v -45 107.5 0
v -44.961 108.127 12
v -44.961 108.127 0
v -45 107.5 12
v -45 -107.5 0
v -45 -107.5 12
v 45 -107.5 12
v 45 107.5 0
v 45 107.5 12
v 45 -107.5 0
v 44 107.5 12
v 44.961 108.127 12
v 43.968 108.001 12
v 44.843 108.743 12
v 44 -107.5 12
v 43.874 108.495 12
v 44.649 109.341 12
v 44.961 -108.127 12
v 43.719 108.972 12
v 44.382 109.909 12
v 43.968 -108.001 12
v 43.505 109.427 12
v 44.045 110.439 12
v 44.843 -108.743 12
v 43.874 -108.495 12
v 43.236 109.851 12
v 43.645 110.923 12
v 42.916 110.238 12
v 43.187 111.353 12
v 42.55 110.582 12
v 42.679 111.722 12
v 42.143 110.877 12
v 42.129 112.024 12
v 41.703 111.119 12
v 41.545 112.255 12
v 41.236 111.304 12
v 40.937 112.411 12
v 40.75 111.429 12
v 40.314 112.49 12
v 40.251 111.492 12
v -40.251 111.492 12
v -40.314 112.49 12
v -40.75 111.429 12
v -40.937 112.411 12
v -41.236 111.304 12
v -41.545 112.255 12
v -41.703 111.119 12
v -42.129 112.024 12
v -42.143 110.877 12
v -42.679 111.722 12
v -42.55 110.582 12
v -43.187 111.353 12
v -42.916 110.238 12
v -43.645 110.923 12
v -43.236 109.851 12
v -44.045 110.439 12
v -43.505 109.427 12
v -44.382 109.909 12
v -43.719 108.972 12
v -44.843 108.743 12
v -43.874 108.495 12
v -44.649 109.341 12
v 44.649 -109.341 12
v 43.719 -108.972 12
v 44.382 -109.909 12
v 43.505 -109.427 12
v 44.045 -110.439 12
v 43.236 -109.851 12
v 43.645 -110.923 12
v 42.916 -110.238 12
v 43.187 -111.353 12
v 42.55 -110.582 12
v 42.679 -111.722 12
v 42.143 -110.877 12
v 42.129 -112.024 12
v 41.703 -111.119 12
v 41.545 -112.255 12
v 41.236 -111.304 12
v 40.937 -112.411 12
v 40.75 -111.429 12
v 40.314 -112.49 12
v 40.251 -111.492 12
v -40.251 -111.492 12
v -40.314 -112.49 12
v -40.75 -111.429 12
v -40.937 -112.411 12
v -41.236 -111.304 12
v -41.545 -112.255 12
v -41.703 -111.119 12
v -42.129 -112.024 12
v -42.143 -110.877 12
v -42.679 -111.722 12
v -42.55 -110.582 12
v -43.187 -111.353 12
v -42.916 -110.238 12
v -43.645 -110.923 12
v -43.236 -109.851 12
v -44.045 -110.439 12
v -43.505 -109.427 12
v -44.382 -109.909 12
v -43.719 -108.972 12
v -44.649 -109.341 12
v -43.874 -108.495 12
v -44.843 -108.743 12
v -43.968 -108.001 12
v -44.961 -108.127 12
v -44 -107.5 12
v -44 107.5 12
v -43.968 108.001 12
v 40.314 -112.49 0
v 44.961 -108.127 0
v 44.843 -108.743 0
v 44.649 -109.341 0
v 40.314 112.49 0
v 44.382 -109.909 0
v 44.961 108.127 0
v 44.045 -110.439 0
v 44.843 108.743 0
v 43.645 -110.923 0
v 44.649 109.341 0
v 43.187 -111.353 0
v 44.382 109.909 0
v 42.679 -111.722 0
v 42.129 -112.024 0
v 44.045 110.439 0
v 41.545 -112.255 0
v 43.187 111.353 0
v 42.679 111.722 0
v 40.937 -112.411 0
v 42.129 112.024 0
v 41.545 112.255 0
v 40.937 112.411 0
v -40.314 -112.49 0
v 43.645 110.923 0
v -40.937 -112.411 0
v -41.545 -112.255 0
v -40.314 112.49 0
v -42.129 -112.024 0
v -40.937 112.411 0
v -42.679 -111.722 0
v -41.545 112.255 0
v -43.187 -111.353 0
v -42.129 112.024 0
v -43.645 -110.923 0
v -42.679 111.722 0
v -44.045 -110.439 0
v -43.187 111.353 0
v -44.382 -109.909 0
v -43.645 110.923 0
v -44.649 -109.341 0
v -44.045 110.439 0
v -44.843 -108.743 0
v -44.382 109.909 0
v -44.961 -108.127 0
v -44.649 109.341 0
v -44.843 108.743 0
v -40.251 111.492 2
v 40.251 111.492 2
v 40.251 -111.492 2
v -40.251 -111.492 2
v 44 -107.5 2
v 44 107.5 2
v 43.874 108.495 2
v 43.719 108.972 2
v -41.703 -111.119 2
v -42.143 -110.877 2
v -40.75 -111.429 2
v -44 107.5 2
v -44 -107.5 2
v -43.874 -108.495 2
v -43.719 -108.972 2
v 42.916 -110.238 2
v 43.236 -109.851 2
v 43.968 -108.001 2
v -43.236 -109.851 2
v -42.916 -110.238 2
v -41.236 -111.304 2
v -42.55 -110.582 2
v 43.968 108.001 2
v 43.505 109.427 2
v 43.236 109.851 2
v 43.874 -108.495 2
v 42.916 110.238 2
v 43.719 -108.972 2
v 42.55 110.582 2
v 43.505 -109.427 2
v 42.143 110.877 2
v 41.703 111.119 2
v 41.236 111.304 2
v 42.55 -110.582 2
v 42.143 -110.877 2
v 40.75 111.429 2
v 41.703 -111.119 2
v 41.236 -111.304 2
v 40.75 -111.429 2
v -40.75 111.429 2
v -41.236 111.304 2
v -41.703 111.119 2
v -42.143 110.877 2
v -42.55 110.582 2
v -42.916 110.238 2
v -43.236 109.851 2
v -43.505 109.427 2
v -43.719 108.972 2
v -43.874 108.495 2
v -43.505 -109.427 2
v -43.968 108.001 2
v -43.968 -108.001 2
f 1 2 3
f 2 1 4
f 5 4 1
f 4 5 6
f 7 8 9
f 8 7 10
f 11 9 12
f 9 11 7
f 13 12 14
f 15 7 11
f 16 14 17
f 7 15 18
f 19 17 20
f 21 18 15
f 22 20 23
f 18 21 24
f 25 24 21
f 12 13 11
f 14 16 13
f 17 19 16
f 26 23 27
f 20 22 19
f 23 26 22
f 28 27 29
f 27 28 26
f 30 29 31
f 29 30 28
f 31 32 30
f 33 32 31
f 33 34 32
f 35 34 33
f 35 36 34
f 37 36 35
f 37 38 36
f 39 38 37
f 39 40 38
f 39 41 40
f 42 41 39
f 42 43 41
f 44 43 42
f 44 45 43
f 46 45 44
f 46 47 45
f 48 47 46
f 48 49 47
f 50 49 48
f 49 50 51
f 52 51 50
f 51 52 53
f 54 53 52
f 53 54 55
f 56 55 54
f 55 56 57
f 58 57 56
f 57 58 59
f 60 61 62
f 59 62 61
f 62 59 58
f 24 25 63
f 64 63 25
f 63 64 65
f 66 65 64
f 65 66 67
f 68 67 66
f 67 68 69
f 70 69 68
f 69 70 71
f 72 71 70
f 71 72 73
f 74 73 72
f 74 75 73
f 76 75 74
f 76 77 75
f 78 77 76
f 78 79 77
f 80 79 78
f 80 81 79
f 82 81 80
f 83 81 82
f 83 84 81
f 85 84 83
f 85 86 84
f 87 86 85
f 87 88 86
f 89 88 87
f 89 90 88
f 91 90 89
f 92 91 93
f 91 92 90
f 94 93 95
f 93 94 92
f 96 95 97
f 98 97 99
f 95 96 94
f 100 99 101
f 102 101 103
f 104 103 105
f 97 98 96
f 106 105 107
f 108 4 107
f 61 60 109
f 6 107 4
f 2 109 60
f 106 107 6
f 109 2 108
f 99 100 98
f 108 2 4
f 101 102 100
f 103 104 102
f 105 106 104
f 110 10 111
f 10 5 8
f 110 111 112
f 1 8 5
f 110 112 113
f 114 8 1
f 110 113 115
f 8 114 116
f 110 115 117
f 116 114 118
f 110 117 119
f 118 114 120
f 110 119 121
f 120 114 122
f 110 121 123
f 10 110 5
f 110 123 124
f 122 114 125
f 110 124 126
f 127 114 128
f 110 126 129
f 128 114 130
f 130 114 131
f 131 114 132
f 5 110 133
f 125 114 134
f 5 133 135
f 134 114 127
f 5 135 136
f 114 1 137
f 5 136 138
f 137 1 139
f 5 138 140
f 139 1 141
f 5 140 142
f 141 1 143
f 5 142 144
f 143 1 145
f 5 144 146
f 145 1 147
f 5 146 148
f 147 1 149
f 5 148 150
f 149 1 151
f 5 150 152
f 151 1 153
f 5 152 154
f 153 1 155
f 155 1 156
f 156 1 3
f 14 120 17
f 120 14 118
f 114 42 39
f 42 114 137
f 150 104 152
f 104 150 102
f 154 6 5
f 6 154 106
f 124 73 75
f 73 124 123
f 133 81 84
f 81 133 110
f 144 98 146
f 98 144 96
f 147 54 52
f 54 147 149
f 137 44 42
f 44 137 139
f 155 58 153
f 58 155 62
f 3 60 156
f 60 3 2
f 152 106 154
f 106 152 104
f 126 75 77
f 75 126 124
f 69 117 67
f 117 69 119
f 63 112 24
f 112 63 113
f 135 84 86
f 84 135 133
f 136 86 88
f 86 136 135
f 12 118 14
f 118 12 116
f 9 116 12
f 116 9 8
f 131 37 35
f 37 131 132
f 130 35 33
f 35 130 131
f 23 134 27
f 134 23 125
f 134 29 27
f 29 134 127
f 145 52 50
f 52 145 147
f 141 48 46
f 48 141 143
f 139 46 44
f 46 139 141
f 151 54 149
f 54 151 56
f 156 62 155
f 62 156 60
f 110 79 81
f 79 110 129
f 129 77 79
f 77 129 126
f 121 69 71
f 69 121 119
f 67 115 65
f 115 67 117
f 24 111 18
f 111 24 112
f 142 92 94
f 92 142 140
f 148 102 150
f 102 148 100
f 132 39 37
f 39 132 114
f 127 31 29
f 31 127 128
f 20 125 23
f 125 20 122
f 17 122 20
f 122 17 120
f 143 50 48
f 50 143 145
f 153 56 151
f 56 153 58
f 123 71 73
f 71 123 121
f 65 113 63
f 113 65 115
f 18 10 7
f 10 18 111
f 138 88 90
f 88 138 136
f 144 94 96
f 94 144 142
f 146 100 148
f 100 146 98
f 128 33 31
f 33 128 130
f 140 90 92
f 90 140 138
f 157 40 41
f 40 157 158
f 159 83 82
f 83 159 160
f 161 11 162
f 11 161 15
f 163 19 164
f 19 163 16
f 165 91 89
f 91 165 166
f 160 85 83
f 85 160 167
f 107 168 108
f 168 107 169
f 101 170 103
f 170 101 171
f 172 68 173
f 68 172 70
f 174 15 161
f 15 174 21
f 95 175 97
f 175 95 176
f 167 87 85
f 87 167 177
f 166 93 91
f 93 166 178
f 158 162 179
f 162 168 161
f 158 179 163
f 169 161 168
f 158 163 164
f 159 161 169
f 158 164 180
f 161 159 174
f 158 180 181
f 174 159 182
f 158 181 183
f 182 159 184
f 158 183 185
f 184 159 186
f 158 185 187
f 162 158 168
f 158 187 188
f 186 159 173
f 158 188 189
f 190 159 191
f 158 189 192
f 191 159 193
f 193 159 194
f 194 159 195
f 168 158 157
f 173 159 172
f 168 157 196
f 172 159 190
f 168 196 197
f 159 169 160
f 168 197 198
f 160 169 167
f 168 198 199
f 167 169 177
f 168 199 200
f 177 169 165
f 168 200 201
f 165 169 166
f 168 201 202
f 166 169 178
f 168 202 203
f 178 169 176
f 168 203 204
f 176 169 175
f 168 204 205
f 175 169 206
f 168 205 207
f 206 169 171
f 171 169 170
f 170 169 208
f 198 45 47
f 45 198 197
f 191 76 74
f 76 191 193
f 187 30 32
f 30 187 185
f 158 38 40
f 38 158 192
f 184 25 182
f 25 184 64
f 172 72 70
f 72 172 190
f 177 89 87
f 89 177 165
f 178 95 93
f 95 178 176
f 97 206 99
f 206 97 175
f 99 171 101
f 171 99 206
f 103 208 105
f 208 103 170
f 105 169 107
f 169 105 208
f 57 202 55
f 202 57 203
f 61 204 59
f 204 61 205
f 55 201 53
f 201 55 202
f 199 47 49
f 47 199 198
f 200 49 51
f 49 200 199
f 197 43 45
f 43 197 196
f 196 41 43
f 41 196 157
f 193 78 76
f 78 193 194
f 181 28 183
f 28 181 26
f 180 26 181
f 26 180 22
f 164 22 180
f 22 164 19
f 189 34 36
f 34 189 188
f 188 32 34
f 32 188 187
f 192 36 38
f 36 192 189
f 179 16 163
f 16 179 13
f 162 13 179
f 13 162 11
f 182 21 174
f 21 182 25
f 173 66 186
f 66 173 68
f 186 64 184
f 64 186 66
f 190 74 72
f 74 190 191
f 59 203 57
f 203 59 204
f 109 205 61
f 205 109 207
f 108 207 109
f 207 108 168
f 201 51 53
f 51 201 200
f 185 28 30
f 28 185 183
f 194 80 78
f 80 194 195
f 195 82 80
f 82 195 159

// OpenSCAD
$fn = 50;


difference() {
	union() {
		hull() {
			translate(v = [-40.0000000000, 107.5000000000, 0]) {
				cylinder(h = 12, r = 5);
			}
			translate(v = [40.0000000000, 107.5000000000, 0]) {
				cylinder(h = 12, r = 5);
			}
			translate(v = [-40.0000000000, -107.5000000000, 0]) {
				cylinder(h = 12, r = 5);
			}
			translate(v = [40.0000000000, -107.5000000000, 0]) {
				cylinder(h = 12, r = 5);
			}
		}
	}
	union() {
		translate(v = [0, 0, 2]) {
			hull() {
				translate(v = [-40.0000000000, 107.5000000000, 0]) {
					cylinder(h = 10, r = 4);
				}
				translate(v = [40.0000000000, 107.5000000000, 0]) {
					cylinder(h = 10, r = 4);
				}
				translate(v = [-40.0000000000, -107.5000000000, 0]) {
					cylinder(h = 10, r = 4);
				}
				translate(v = [40.0000000000, -107.5000000000, 0]) {
					cylinder(h = 10, r = 4);
				}
			}
		}
	}
}
